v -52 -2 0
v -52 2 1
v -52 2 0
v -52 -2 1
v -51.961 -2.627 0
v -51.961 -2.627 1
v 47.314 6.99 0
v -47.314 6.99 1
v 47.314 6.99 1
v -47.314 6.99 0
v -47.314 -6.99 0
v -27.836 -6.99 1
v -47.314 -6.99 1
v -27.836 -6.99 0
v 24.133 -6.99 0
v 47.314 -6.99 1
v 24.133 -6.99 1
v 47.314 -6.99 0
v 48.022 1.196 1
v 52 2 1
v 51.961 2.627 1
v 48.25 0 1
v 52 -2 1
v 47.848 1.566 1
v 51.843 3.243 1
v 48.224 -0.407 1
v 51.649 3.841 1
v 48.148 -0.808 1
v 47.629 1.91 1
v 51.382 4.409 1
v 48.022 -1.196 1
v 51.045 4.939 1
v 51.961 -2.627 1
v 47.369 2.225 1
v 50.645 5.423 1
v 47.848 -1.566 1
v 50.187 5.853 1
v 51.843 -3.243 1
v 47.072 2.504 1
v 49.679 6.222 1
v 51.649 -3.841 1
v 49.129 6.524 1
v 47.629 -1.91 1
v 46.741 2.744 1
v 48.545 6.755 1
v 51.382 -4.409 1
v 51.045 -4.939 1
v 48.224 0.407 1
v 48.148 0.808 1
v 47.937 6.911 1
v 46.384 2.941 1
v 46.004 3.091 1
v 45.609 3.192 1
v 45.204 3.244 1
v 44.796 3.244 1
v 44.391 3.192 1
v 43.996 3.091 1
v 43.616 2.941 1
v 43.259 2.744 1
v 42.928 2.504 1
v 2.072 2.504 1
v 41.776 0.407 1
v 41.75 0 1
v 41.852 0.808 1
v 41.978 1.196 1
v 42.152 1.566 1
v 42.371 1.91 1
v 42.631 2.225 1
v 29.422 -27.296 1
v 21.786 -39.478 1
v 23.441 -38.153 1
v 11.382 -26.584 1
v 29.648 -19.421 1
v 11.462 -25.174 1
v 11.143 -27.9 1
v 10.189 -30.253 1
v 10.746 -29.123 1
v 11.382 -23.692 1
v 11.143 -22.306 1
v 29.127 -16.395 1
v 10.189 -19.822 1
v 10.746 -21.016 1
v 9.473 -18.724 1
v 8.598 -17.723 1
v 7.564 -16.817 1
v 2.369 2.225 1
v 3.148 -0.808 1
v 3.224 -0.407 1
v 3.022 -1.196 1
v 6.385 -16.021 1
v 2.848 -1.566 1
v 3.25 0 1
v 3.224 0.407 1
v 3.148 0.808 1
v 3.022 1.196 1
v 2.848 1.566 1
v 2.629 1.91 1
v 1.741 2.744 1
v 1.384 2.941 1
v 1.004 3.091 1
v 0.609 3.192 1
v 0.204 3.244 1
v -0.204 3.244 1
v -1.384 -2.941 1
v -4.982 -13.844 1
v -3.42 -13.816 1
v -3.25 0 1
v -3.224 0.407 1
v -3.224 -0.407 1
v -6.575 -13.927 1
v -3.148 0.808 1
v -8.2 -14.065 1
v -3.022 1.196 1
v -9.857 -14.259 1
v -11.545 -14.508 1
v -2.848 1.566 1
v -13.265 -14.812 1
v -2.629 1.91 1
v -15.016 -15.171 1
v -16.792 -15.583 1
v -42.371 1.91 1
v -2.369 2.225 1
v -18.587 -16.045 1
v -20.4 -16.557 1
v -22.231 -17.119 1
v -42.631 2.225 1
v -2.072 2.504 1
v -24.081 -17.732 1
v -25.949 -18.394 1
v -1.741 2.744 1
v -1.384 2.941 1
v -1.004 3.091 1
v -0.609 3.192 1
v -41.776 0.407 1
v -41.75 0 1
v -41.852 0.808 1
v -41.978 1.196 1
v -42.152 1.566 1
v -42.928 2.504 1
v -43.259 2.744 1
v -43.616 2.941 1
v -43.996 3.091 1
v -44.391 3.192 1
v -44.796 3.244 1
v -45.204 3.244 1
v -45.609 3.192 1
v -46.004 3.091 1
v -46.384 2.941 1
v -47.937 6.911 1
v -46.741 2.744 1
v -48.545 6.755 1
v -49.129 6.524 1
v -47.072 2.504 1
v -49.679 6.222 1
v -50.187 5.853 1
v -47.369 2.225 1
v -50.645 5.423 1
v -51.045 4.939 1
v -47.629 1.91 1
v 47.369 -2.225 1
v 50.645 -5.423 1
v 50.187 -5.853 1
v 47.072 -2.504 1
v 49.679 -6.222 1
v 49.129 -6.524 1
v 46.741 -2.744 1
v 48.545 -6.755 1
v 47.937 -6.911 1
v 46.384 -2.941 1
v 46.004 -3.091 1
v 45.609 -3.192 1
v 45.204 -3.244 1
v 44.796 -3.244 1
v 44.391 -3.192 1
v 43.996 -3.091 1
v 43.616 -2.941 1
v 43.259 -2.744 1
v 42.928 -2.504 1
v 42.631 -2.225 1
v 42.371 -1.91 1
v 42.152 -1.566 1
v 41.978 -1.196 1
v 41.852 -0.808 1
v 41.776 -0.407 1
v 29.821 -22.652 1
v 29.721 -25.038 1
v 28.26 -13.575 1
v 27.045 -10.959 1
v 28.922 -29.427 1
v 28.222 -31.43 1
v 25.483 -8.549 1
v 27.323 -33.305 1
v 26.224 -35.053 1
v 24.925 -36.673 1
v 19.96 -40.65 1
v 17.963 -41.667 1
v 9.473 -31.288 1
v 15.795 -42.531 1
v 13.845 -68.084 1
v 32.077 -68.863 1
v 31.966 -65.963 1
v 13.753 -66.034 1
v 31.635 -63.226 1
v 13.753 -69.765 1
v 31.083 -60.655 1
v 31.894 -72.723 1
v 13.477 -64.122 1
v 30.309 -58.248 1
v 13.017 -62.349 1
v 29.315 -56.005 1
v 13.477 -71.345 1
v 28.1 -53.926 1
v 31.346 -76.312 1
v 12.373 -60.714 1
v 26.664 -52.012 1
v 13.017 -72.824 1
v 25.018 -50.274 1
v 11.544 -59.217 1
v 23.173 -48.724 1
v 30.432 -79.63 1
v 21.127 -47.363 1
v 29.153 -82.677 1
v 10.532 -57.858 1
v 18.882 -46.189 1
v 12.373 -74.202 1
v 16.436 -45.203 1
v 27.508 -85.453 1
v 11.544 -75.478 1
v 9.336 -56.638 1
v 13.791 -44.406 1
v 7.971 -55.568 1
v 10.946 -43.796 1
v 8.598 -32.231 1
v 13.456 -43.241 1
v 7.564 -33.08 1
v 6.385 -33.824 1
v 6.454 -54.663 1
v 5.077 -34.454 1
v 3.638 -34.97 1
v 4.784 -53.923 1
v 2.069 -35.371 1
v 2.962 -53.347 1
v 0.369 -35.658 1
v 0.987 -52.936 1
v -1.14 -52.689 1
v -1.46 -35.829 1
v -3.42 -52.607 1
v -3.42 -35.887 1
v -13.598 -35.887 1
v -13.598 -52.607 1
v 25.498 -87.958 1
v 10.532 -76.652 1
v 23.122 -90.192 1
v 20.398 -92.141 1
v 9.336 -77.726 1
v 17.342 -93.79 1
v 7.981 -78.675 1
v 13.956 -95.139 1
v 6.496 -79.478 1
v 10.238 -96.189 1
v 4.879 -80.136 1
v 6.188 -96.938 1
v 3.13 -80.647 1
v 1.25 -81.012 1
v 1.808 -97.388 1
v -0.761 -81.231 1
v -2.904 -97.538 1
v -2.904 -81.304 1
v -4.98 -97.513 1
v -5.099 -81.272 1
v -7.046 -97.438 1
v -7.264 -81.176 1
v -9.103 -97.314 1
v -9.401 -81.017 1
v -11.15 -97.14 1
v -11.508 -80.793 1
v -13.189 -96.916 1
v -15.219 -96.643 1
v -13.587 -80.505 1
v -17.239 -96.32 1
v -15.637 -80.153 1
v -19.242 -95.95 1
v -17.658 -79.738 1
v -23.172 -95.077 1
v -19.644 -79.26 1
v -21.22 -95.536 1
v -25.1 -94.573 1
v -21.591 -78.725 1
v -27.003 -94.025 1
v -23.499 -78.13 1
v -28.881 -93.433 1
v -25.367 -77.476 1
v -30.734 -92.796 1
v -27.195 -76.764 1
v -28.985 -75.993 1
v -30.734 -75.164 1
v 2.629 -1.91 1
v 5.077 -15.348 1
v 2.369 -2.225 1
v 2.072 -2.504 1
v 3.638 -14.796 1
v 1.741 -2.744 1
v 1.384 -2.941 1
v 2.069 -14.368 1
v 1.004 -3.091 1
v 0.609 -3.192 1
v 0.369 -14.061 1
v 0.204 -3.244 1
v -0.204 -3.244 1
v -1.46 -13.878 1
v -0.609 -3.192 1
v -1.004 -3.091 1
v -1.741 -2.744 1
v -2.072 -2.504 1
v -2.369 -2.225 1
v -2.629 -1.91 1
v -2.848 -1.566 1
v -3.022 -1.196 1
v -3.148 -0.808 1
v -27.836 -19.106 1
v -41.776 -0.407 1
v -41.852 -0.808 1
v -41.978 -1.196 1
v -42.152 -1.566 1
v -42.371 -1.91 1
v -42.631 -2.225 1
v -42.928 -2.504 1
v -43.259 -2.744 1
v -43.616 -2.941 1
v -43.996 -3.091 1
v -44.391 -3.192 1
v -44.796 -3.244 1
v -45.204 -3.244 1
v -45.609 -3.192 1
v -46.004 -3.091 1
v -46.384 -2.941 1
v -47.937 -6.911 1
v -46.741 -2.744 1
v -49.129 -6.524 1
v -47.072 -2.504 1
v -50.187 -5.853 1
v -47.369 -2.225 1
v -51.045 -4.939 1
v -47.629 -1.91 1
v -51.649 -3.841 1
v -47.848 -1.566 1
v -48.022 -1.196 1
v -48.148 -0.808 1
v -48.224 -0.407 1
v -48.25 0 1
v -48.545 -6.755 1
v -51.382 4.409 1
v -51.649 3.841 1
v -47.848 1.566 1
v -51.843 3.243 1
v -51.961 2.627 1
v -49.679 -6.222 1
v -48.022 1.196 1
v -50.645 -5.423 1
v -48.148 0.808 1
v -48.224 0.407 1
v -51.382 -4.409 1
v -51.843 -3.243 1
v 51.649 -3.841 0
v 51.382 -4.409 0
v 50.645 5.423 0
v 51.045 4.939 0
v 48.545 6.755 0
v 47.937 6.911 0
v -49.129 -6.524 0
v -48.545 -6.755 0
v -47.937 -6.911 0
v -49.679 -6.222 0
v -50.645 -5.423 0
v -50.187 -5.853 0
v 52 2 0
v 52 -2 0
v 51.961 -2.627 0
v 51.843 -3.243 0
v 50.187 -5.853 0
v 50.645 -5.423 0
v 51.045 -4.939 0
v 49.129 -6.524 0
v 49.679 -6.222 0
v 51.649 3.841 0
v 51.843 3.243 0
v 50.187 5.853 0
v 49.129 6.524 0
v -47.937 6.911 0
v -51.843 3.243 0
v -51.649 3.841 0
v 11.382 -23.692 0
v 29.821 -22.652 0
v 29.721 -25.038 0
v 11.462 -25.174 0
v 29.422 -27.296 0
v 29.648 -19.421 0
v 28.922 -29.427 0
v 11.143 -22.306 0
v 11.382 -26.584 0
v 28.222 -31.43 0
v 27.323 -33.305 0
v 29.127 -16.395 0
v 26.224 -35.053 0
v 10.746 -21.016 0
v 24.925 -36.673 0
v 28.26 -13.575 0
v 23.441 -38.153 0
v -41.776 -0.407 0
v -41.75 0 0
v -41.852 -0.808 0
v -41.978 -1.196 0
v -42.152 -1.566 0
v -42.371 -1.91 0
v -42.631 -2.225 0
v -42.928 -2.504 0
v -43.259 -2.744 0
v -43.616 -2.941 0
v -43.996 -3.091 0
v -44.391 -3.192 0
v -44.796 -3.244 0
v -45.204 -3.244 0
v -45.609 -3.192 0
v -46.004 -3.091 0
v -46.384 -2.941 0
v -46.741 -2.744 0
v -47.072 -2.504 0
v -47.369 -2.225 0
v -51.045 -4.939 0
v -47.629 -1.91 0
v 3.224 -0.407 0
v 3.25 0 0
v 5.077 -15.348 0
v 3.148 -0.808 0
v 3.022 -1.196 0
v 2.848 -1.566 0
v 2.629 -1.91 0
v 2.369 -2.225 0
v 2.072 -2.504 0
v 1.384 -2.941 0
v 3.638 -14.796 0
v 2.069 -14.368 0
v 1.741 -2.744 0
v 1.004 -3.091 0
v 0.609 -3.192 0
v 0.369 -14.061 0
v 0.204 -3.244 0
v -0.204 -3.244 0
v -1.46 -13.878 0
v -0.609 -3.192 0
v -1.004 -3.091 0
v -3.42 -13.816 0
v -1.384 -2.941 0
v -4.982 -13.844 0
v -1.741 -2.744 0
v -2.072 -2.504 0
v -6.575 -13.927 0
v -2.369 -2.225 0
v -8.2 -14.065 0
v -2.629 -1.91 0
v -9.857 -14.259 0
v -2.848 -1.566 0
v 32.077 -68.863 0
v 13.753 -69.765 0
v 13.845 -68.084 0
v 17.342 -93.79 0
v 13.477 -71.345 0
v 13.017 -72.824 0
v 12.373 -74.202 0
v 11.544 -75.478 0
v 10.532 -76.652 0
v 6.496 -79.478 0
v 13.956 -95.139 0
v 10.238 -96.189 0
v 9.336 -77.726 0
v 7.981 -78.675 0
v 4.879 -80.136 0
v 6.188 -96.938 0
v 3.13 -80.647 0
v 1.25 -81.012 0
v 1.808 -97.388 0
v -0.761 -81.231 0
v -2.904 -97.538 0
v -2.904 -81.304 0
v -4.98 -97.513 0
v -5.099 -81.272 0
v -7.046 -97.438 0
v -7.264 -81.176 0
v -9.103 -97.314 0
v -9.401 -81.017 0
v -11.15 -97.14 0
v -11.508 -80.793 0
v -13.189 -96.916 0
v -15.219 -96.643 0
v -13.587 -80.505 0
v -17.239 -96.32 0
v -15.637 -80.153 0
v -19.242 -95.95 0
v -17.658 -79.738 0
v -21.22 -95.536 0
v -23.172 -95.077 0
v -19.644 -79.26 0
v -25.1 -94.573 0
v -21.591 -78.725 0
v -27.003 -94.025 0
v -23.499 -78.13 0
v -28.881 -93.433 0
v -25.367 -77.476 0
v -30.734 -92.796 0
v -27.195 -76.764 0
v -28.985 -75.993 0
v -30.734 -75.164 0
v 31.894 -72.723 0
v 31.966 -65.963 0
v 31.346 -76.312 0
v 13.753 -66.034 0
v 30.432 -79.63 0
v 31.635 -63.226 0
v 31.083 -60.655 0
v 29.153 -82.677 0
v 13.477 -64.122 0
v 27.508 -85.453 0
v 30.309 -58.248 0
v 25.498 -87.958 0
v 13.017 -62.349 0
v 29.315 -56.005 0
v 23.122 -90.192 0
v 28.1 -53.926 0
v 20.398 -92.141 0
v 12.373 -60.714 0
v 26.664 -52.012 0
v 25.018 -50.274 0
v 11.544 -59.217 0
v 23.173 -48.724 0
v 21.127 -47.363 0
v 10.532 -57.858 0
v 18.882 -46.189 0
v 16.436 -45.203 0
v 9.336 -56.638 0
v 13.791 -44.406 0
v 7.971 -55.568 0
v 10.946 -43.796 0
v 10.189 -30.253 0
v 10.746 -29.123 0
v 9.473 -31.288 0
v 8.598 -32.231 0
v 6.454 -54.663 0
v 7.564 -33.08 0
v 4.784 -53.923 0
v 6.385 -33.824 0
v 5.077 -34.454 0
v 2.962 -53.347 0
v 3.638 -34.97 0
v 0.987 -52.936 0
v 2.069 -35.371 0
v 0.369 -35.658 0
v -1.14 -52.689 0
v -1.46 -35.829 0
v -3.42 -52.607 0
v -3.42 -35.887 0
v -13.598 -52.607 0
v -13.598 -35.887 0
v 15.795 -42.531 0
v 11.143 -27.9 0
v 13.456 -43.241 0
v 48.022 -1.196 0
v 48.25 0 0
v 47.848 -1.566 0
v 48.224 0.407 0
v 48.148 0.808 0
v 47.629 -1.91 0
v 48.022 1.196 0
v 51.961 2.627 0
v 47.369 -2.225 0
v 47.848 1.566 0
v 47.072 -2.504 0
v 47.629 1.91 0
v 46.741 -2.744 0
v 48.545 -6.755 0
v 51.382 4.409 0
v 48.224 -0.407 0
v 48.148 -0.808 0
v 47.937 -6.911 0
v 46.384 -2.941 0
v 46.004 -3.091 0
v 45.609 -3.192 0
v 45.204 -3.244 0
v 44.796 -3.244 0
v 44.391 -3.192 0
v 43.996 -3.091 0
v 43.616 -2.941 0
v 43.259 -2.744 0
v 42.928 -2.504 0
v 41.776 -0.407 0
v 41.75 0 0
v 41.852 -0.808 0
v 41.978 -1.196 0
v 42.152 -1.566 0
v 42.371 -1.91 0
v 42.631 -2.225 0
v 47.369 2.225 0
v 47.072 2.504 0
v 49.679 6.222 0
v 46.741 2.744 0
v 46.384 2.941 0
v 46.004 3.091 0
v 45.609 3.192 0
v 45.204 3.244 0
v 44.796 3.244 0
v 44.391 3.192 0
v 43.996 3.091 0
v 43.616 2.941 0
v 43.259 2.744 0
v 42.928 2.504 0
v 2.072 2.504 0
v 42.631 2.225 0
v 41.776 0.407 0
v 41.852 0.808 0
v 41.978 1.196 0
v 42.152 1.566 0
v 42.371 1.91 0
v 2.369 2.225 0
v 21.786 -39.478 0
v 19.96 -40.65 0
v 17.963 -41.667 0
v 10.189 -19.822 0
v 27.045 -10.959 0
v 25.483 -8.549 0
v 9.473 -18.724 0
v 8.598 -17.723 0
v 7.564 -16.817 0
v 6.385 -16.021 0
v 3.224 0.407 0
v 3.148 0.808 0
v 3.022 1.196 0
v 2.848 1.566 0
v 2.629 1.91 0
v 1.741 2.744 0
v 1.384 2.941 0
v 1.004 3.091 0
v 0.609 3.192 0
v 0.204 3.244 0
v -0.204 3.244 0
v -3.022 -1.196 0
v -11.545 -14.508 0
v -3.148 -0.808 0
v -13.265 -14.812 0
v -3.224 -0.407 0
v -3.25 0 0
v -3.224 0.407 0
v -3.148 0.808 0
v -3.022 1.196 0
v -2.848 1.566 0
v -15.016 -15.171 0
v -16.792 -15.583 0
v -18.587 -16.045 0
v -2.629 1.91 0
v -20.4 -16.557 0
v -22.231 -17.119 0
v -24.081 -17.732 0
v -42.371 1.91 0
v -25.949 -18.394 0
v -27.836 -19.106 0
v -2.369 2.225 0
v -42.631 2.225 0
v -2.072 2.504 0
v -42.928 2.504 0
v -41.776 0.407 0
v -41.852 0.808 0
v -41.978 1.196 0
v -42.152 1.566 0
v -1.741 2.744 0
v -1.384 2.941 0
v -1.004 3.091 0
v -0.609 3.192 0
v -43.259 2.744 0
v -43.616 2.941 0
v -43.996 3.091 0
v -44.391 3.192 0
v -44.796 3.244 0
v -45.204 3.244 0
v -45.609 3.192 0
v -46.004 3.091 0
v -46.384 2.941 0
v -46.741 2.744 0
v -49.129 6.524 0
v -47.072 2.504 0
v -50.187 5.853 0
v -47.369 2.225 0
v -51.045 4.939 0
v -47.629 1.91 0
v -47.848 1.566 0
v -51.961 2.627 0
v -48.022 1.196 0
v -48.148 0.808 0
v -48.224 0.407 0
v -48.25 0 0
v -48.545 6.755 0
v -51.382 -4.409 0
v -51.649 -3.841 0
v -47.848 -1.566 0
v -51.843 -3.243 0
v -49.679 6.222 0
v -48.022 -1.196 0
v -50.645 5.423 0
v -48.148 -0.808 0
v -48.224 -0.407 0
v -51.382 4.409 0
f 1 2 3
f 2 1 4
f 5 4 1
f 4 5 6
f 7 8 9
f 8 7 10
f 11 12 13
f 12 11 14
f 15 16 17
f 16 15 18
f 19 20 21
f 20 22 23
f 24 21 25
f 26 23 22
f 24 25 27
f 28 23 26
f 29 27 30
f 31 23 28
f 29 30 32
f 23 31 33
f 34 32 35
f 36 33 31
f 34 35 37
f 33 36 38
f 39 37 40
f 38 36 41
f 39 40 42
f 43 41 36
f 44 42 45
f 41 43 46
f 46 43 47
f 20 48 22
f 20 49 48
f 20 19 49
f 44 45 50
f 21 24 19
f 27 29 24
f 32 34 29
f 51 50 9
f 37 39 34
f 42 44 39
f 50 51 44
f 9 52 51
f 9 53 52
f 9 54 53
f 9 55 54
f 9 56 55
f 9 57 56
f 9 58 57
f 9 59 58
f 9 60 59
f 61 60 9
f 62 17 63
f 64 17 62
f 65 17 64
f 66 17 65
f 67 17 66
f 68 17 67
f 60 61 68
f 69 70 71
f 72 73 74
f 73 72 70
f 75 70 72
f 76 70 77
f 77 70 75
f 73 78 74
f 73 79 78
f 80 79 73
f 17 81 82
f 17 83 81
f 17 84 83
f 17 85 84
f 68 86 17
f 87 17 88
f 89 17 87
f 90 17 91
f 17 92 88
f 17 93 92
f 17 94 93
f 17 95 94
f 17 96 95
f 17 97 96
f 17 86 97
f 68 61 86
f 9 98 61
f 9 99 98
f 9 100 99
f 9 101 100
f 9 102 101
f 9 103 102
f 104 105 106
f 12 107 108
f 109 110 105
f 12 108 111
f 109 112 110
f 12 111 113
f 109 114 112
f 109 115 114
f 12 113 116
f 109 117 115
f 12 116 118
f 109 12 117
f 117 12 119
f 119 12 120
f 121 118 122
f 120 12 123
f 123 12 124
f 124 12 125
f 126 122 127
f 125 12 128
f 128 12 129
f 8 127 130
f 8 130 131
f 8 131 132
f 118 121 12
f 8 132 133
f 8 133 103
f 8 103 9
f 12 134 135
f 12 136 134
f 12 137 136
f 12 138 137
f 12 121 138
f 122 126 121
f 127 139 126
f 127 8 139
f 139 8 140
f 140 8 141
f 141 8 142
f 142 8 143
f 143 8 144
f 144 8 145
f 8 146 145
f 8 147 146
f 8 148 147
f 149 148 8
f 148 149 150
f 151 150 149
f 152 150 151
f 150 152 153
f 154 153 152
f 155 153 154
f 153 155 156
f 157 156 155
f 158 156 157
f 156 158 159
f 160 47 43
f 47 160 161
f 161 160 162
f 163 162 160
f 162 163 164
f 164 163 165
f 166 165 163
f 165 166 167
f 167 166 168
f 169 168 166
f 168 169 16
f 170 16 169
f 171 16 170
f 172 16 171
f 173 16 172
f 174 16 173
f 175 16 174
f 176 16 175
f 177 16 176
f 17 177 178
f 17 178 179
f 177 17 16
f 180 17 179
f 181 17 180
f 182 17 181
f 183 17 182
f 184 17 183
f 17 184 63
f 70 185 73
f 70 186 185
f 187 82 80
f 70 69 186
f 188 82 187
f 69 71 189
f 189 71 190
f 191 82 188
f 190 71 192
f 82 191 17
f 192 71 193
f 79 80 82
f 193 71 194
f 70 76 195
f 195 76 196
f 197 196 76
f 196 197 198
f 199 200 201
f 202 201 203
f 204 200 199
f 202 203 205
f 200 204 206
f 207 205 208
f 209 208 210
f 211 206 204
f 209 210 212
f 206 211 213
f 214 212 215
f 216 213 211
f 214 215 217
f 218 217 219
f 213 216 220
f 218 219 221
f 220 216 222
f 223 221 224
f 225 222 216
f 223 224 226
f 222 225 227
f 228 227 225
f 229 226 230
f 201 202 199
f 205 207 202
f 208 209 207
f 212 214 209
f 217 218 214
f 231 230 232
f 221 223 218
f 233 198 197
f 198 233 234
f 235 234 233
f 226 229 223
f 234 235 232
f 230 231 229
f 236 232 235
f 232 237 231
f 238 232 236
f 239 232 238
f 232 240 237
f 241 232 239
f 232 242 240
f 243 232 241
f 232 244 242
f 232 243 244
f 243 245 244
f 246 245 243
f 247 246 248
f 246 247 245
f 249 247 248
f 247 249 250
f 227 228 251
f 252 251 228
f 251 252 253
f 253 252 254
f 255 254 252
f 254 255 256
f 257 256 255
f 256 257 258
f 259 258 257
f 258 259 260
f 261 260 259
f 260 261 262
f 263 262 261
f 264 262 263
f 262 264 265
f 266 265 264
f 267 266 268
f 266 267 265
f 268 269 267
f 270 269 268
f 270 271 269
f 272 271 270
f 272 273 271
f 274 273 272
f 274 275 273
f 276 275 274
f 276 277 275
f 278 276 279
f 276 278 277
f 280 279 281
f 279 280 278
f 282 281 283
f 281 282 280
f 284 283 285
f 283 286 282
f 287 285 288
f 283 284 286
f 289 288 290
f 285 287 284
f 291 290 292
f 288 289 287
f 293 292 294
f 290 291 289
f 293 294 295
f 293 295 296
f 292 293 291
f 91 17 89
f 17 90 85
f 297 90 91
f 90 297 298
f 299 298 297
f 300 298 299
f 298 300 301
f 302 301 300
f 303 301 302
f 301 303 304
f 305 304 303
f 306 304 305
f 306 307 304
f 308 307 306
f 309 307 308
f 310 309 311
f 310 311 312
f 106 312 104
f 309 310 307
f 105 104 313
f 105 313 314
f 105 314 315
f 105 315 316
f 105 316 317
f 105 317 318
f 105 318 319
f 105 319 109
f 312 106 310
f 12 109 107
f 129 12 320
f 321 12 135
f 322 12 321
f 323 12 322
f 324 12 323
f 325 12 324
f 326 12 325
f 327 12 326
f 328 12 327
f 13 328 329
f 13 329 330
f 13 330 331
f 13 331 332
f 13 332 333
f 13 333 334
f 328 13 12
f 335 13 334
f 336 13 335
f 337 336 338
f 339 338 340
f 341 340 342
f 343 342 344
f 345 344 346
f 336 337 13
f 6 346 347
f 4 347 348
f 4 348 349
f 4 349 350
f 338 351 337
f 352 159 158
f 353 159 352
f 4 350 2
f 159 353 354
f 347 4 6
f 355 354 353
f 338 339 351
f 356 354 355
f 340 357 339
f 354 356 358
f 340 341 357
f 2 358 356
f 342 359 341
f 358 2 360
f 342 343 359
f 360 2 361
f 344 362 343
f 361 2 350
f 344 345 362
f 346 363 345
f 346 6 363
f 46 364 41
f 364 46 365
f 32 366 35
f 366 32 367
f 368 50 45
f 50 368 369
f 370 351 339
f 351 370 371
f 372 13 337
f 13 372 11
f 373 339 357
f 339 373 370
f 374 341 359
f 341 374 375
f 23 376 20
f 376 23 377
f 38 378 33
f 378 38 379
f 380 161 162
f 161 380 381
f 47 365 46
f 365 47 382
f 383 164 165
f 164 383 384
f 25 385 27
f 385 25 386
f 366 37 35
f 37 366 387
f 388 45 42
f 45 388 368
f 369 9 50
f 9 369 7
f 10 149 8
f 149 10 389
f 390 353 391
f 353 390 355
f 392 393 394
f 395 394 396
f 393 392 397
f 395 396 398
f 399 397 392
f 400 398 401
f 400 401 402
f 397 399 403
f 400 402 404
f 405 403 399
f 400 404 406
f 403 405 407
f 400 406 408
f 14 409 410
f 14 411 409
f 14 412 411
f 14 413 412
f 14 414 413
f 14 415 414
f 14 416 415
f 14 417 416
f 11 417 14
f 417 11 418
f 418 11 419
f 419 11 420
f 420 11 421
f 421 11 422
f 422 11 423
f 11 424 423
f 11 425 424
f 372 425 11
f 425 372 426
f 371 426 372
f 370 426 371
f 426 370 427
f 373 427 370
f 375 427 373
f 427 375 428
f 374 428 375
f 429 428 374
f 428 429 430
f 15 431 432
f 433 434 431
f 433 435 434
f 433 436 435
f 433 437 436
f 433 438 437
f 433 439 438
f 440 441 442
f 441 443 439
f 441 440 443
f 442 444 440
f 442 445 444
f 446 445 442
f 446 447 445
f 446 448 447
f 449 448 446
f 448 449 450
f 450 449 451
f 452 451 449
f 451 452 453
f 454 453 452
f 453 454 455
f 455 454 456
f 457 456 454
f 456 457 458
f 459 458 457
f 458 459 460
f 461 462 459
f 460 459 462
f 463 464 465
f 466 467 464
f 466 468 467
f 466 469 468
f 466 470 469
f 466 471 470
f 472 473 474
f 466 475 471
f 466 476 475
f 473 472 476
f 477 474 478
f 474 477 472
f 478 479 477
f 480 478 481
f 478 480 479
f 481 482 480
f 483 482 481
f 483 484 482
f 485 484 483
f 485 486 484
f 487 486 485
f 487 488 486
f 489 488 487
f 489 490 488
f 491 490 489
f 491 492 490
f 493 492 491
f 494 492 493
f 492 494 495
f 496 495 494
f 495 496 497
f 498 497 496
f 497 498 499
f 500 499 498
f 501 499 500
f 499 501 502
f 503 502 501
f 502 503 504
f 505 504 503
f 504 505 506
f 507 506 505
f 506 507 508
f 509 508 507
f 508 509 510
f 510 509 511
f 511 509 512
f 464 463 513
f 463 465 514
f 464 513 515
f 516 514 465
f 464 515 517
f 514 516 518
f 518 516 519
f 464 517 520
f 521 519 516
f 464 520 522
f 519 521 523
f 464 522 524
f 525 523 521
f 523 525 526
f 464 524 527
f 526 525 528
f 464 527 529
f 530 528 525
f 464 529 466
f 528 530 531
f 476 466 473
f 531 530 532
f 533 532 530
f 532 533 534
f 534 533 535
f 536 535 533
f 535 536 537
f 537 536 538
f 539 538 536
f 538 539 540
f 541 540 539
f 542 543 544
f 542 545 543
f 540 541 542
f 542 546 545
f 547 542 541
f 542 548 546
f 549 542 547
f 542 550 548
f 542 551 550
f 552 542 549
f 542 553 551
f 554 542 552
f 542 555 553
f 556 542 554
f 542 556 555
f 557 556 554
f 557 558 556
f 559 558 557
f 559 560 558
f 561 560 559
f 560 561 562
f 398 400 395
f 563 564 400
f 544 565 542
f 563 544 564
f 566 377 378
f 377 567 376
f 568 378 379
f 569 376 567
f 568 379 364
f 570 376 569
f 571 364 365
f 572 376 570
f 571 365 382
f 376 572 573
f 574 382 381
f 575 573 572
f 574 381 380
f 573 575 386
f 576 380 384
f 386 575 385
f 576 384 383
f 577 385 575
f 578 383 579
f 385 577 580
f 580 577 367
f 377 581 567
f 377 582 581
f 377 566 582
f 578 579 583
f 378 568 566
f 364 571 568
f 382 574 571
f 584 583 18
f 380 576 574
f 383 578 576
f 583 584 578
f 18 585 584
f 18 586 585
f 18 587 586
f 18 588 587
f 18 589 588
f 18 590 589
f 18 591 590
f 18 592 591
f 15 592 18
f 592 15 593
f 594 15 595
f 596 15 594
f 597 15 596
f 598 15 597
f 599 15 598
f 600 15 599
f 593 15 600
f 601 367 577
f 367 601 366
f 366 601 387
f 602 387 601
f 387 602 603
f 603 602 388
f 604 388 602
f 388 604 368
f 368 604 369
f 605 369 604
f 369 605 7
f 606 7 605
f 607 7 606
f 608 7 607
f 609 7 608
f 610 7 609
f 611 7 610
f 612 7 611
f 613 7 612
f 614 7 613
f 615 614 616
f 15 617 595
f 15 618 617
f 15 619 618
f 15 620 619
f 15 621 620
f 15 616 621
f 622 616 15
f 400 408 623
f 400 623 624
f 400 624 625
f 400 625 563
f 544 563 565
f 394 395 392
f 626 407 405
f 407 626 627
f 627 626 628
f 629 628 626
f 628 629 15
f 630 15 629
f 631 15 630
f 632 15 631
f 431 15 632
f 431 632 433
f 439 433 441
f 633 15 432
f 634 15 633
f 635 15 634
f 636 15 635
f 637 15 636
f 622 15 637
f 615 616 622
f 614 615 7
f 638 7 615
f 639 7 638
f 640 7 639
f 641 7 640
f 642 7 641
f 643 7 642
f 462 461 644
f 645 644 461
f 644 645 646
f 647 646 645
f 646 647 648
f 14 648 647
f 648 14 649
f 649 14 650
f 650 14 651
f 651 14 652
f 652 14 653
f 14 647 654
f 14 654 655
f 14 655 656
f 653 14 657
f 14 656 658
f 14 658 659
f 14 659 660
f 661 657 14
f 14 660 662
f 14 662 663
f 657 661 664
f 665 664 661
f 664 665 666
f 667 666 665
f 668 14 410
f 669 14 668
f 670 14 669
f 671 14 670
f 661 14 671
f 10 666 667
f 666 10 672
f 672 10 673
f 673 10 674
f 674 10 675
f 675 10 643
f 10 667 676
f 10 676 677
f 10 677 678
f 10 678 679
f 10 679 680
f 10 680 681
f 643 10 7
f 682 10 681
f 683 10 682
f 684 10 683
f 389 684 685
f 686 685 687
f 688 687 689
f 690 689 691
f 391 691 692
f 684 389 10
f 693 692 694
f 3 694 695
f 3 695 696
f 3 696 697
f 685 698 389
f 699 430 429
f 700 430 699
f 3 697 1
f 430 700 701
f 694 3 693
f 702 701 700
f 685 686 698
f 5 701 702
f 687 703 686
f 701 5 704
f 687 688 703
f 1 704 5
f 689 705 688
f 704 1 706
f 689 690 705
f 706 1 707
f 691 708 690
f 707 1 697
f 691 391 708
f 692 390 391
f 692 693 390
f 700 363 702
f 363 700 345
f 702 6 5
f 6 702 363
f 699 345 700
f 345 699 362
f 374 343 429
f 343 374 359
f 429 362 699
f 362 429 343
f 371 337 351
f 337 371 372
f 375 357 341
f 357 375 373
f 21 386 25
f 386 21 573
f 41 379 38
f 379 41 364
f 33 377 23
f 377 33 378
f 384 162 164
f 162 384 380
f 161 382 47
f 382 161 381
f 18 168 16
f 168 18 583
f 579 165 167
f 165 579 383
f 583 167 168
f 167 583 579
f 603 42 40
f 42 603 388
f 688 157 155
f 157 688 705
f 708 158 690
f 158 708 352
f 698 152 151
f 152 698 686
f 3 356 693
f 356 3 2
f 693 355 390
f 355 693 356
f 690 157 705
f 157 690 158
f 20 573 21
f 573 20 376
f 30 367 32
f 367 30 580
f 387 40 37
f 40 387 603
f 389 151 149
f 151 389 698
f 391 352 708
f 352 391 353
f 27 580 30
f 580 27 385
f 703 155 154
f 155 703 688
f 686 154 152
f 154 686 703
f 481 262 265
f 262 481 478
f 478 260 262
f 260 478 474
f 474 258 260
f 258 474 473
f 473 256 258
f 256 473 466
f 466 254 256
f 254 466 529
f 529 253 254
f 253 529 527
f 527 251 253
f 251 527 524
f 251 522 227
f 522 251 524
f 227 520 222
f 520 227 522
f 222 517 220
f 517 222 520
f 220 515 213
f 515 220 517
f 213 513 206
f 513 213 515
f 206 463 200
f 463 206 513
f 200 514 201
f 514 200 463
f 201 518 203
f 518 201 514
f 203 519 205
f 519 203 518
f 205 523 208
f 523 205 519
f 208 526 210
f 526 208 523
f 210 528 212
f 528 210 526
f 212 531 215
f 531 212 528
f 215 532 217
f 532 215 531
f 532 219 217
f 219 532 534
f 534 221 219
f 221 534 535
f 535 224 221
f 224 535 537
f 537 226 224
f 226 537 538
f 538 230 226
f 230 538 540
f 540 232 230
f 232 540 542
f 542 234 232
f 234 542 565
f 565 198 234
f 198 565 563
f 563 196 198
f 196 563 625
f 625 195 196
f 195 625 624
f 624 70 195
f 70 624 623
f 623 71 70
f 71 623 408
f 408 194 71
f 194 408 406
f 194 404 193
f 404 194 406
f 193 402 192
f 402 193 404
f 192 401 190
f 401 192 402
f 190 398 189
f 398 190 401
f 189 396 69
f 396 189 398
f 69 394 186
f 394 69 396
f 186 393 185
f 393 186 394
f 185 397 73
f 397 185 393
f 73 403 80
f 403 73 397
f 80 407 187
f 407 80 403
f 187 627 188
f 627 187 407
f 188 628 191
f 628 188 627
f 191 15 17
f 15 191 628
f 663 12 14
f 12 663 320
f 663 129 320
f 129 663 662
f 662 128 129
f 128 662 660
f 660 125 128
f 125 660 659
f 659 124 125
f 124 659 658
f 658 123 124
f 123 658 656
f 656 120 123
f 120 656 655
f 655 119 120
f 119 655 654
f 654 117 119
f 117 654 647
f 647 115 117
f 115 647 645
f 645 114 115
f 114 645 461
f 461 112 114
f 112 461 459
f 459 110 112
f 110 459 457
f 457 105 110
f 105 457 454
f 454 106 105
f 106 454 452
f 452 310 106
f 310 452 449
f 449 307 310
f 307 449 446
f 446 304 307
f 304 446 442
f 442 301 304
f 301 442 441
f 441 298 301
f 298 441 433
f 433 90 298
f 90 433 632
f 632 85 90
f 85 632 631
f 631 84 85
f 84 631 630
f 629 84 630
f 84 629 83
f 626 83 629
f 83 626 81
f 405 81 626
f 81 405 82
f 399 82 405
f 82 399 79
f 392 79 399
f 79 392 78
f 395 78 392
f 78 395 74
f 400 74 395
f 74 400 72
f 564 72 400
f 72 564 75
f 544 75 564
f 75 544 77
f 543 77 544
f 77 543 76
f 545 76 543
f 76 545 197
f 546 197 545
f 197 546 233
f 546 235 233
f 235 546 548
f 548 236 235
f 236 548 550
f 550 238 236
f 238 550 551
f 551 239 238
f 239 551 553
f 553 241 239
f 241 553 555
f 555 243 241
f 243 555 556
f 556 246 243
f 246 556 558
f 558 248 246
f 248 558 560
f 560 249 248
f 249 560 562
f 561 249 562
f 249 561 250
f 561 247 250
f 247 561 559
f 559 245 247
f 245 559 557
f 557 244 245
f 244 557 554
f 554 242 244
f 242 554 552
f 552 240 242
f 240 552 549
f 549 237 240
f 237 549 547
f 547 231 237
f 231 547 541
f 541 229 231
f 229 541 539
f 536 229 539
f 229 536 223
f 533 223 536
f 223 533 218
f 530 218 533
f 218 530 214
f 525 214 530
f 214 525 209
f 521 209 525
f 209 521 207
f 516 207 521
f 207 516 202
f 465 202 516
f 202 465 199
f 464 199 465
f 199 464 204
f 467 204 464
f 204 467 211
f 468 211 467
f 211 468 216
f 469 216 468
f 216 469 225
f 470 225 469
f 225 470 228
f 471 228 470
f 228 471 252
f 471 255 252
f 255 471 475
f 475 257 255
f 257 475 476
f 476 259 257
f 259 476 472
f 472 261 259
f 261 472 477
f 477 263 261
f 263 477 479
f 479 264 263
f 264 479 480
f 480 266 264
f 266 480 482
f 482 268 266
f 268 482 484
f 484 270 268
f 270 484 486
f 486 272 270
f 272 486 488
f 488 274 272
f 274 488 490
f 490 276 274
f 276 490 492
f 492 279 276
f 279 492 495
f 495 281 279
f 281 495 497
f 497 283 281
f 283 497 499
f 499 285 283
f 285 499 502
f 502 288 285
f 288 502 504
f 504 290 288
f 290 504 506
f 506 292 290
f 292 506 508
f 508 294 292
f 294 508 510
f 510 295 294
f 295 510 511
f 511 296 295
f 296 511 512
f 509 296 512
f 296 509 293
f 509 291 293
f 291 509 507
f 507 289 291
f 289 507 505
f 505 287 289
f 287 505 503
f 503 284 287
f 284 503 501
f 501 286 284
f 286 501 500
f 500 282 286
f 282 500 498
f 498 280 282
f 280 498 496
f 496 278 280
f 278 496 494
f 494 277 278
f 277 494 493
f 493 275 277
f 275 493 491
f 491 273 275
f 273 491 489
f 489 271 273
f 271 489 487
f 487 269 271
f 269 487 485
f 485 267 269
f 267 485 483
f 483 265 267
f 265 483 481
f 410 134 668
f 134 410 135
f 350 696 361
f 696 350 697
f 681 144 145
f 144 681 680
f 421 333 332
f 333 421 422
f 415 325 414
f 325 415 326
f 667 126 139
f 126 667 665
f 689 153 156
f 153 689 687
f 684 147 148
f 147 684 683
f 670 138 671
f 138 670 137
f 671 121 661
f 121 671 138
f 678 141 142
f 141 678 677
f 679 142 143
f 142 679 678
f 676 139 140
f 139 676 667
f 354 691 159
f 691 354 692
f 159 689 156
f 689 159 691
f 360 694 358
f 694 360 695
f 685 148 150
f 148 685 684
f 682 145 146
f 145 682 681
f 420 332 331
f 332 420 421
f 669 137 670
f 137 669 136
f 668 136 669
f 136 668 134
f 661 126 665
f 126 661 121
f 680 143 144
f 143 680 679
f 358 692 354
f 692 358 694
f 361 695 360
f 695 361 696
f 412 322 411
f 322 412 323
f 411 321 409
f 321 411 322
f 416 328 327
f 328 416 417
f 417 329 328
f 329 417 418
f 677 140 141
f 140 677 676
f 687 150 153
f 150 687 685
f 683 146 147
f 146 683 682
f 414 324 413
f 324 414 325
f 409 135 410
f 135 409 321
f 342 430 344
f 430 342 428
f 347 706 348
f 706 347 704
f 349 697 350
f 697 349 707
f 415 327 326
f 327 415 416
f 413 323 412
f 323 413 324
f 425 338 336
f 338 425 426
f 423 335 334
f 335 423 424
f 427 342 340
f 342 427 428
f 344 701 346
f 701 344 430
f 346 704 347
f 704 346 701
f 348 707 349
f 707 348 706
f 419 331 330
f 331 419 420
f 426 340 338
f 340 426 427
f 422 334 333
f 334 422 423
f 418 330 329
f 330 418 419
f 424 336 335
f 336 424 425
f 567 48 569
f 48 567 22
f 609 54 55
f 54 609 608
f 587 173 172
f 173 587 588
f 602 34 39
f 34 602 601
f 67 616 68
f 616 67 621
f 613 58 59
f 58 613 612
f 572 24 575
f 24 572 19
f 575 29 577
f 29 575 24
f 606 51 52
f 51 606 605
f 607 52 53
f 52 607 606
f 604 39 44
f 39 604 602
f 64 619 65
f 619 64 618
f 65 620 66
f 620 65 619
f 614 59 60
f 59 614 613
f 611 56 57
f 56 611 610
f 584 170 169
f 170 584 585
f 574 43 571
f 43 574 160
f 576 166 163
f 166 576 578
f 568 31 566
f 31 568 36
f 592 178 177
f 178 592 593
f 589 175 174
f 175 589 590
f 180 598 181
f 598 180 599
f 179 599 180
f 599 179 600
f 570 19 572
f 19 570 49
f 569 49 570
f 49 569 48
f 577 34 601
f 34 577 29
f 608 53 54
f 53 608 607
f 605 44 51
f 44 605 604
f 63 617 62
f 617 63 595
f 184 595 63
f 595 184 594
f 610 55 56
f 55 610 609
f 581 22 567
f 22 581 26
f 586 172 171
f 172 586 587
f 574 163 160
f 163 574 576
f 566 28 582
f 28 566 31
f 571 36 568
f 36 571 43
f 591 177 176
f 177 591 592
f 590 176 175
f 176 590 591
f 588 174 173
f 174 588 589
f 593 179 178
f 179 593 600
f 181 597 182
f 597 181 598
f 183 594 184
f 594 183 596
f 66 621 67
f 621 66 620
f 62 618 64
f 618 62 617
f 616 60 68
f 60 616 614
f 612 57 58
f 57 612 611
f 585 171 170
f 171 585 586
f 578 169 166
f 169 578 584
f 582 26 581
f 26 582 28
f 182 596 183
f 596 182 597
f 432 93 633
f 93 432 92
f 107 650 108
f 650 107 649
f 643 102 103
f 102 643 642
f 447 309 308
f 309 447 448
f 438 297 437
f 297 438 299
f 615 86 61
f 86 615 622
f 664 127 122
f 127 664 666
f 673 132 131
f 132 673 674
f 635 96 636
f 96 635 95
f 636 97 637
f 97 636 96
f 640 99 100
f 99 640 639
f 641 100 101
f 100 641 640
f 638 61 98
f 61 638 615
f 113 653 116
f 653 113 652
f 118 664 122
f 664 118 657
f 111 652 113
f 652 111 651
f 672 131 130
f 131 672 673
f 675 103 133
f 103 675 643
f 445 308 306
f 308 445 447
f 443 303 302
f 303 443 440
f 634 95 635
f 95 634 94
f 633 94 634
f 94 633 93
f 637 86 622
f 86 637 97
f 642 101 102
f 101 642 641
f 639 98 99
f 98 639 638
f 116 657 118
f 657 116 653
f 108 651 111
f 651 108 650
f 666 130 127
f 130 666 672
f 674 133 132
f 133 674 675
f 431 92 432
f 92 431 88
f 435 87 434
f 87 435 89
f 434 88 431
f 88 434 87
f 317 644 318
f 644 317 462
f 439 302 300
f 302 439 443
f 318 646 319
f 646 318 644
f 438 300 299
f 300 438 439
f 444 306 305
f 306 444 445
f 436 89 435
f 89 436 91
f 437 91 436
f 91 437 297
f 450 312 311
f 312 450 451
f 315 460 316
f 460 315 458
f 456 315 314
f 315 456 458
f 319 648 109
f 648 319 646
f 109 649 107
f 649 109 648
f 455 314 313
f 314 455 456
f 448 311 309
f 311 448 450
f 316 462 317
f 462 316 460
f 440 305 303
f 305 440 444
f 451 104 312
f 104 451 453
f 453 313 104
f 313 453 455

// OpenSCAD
$fn = 50;


difference() {
	union() {
		translate(v = [0, 0, 0]) {
			rotate(a = [0, 0, 0]) {
				hull() {
					translate(v = [-47.0000000000, 2.0000000000, 0]) {
						rotate(a = [0, 0, 0]) {
							translate(v = [0, 0, 0]) {
								rotate(a = [0, 0, 0]) {
									cylinder(h = 1, r = 5);
								}
							}
						}
					}
					translate(v = [47.0000000000, 2.0000000000, 0]) {
						rotate(a = [0, 0, 0]) {
							translate(v = [0, 0, 0]) {
								rotate(a = [0, 0, 0]) {
									cylinder(h = 1, r = 5);
								}
							}
						}
					}
					translate(v = [-47.0000000000, -2.0000000000, 0]) {
						rotate(a = [0, 0, 0]) {
							translate(v = [0, 0, 0]) {
								rotate(a = [0, 0, 0]) {
									cylinder(h = 1, r = 5);
								}
							}
						}
					}
					translate(v = [47.0000000000, -2.0000000000, 0]) {
						rotate(a = [0, 0, 0]) {
							translate(v = [0, 0, 0]) {
								rotate(a = [0, 0, 0]) {
									cylinder(h = 1, r = 5);
								}
							}
						}
					}
				}
			}
		}
		translate(v = [0, 0, 0]) {
			rotate(a = [0, 0, 0]) {
				linear_extrude(height = 1) {
					text(font = "DejaVu Sans Mono:style=Bold", halign = "center", size = 95, text = "3", valign = "top");
				}
			}
		}
	}
	union() {
		translate(v = [-45.0000000000, 0.0000000000, -125.0000000000]) {
			rotate(a = [0, 0, 0]) {
				cylinder(h = 250, r = 3.2500000000);
			}
		}
		translate(v = [45.0000000000, 0.0000000000, -125.0000000000]) {
			rotate(a = [0, 0, 0]) {
				cylinder(h = 250, r = 3.2500000000);
			}
		}
		translate(v = [45.0000000000, 0.0000000000, -125.0000000000]) {
			rotate(a = [0, 0, 0]) {
				cylinder(h = 250, r = 3.2500000000);
			}
		}
		translate(v = [0, 0, -125.0000000000]) {
			rotate(a = [0, 0, 0]) {
				cylinder(h = 250, r = 3.2500000000);
			}
		}
	}
}
